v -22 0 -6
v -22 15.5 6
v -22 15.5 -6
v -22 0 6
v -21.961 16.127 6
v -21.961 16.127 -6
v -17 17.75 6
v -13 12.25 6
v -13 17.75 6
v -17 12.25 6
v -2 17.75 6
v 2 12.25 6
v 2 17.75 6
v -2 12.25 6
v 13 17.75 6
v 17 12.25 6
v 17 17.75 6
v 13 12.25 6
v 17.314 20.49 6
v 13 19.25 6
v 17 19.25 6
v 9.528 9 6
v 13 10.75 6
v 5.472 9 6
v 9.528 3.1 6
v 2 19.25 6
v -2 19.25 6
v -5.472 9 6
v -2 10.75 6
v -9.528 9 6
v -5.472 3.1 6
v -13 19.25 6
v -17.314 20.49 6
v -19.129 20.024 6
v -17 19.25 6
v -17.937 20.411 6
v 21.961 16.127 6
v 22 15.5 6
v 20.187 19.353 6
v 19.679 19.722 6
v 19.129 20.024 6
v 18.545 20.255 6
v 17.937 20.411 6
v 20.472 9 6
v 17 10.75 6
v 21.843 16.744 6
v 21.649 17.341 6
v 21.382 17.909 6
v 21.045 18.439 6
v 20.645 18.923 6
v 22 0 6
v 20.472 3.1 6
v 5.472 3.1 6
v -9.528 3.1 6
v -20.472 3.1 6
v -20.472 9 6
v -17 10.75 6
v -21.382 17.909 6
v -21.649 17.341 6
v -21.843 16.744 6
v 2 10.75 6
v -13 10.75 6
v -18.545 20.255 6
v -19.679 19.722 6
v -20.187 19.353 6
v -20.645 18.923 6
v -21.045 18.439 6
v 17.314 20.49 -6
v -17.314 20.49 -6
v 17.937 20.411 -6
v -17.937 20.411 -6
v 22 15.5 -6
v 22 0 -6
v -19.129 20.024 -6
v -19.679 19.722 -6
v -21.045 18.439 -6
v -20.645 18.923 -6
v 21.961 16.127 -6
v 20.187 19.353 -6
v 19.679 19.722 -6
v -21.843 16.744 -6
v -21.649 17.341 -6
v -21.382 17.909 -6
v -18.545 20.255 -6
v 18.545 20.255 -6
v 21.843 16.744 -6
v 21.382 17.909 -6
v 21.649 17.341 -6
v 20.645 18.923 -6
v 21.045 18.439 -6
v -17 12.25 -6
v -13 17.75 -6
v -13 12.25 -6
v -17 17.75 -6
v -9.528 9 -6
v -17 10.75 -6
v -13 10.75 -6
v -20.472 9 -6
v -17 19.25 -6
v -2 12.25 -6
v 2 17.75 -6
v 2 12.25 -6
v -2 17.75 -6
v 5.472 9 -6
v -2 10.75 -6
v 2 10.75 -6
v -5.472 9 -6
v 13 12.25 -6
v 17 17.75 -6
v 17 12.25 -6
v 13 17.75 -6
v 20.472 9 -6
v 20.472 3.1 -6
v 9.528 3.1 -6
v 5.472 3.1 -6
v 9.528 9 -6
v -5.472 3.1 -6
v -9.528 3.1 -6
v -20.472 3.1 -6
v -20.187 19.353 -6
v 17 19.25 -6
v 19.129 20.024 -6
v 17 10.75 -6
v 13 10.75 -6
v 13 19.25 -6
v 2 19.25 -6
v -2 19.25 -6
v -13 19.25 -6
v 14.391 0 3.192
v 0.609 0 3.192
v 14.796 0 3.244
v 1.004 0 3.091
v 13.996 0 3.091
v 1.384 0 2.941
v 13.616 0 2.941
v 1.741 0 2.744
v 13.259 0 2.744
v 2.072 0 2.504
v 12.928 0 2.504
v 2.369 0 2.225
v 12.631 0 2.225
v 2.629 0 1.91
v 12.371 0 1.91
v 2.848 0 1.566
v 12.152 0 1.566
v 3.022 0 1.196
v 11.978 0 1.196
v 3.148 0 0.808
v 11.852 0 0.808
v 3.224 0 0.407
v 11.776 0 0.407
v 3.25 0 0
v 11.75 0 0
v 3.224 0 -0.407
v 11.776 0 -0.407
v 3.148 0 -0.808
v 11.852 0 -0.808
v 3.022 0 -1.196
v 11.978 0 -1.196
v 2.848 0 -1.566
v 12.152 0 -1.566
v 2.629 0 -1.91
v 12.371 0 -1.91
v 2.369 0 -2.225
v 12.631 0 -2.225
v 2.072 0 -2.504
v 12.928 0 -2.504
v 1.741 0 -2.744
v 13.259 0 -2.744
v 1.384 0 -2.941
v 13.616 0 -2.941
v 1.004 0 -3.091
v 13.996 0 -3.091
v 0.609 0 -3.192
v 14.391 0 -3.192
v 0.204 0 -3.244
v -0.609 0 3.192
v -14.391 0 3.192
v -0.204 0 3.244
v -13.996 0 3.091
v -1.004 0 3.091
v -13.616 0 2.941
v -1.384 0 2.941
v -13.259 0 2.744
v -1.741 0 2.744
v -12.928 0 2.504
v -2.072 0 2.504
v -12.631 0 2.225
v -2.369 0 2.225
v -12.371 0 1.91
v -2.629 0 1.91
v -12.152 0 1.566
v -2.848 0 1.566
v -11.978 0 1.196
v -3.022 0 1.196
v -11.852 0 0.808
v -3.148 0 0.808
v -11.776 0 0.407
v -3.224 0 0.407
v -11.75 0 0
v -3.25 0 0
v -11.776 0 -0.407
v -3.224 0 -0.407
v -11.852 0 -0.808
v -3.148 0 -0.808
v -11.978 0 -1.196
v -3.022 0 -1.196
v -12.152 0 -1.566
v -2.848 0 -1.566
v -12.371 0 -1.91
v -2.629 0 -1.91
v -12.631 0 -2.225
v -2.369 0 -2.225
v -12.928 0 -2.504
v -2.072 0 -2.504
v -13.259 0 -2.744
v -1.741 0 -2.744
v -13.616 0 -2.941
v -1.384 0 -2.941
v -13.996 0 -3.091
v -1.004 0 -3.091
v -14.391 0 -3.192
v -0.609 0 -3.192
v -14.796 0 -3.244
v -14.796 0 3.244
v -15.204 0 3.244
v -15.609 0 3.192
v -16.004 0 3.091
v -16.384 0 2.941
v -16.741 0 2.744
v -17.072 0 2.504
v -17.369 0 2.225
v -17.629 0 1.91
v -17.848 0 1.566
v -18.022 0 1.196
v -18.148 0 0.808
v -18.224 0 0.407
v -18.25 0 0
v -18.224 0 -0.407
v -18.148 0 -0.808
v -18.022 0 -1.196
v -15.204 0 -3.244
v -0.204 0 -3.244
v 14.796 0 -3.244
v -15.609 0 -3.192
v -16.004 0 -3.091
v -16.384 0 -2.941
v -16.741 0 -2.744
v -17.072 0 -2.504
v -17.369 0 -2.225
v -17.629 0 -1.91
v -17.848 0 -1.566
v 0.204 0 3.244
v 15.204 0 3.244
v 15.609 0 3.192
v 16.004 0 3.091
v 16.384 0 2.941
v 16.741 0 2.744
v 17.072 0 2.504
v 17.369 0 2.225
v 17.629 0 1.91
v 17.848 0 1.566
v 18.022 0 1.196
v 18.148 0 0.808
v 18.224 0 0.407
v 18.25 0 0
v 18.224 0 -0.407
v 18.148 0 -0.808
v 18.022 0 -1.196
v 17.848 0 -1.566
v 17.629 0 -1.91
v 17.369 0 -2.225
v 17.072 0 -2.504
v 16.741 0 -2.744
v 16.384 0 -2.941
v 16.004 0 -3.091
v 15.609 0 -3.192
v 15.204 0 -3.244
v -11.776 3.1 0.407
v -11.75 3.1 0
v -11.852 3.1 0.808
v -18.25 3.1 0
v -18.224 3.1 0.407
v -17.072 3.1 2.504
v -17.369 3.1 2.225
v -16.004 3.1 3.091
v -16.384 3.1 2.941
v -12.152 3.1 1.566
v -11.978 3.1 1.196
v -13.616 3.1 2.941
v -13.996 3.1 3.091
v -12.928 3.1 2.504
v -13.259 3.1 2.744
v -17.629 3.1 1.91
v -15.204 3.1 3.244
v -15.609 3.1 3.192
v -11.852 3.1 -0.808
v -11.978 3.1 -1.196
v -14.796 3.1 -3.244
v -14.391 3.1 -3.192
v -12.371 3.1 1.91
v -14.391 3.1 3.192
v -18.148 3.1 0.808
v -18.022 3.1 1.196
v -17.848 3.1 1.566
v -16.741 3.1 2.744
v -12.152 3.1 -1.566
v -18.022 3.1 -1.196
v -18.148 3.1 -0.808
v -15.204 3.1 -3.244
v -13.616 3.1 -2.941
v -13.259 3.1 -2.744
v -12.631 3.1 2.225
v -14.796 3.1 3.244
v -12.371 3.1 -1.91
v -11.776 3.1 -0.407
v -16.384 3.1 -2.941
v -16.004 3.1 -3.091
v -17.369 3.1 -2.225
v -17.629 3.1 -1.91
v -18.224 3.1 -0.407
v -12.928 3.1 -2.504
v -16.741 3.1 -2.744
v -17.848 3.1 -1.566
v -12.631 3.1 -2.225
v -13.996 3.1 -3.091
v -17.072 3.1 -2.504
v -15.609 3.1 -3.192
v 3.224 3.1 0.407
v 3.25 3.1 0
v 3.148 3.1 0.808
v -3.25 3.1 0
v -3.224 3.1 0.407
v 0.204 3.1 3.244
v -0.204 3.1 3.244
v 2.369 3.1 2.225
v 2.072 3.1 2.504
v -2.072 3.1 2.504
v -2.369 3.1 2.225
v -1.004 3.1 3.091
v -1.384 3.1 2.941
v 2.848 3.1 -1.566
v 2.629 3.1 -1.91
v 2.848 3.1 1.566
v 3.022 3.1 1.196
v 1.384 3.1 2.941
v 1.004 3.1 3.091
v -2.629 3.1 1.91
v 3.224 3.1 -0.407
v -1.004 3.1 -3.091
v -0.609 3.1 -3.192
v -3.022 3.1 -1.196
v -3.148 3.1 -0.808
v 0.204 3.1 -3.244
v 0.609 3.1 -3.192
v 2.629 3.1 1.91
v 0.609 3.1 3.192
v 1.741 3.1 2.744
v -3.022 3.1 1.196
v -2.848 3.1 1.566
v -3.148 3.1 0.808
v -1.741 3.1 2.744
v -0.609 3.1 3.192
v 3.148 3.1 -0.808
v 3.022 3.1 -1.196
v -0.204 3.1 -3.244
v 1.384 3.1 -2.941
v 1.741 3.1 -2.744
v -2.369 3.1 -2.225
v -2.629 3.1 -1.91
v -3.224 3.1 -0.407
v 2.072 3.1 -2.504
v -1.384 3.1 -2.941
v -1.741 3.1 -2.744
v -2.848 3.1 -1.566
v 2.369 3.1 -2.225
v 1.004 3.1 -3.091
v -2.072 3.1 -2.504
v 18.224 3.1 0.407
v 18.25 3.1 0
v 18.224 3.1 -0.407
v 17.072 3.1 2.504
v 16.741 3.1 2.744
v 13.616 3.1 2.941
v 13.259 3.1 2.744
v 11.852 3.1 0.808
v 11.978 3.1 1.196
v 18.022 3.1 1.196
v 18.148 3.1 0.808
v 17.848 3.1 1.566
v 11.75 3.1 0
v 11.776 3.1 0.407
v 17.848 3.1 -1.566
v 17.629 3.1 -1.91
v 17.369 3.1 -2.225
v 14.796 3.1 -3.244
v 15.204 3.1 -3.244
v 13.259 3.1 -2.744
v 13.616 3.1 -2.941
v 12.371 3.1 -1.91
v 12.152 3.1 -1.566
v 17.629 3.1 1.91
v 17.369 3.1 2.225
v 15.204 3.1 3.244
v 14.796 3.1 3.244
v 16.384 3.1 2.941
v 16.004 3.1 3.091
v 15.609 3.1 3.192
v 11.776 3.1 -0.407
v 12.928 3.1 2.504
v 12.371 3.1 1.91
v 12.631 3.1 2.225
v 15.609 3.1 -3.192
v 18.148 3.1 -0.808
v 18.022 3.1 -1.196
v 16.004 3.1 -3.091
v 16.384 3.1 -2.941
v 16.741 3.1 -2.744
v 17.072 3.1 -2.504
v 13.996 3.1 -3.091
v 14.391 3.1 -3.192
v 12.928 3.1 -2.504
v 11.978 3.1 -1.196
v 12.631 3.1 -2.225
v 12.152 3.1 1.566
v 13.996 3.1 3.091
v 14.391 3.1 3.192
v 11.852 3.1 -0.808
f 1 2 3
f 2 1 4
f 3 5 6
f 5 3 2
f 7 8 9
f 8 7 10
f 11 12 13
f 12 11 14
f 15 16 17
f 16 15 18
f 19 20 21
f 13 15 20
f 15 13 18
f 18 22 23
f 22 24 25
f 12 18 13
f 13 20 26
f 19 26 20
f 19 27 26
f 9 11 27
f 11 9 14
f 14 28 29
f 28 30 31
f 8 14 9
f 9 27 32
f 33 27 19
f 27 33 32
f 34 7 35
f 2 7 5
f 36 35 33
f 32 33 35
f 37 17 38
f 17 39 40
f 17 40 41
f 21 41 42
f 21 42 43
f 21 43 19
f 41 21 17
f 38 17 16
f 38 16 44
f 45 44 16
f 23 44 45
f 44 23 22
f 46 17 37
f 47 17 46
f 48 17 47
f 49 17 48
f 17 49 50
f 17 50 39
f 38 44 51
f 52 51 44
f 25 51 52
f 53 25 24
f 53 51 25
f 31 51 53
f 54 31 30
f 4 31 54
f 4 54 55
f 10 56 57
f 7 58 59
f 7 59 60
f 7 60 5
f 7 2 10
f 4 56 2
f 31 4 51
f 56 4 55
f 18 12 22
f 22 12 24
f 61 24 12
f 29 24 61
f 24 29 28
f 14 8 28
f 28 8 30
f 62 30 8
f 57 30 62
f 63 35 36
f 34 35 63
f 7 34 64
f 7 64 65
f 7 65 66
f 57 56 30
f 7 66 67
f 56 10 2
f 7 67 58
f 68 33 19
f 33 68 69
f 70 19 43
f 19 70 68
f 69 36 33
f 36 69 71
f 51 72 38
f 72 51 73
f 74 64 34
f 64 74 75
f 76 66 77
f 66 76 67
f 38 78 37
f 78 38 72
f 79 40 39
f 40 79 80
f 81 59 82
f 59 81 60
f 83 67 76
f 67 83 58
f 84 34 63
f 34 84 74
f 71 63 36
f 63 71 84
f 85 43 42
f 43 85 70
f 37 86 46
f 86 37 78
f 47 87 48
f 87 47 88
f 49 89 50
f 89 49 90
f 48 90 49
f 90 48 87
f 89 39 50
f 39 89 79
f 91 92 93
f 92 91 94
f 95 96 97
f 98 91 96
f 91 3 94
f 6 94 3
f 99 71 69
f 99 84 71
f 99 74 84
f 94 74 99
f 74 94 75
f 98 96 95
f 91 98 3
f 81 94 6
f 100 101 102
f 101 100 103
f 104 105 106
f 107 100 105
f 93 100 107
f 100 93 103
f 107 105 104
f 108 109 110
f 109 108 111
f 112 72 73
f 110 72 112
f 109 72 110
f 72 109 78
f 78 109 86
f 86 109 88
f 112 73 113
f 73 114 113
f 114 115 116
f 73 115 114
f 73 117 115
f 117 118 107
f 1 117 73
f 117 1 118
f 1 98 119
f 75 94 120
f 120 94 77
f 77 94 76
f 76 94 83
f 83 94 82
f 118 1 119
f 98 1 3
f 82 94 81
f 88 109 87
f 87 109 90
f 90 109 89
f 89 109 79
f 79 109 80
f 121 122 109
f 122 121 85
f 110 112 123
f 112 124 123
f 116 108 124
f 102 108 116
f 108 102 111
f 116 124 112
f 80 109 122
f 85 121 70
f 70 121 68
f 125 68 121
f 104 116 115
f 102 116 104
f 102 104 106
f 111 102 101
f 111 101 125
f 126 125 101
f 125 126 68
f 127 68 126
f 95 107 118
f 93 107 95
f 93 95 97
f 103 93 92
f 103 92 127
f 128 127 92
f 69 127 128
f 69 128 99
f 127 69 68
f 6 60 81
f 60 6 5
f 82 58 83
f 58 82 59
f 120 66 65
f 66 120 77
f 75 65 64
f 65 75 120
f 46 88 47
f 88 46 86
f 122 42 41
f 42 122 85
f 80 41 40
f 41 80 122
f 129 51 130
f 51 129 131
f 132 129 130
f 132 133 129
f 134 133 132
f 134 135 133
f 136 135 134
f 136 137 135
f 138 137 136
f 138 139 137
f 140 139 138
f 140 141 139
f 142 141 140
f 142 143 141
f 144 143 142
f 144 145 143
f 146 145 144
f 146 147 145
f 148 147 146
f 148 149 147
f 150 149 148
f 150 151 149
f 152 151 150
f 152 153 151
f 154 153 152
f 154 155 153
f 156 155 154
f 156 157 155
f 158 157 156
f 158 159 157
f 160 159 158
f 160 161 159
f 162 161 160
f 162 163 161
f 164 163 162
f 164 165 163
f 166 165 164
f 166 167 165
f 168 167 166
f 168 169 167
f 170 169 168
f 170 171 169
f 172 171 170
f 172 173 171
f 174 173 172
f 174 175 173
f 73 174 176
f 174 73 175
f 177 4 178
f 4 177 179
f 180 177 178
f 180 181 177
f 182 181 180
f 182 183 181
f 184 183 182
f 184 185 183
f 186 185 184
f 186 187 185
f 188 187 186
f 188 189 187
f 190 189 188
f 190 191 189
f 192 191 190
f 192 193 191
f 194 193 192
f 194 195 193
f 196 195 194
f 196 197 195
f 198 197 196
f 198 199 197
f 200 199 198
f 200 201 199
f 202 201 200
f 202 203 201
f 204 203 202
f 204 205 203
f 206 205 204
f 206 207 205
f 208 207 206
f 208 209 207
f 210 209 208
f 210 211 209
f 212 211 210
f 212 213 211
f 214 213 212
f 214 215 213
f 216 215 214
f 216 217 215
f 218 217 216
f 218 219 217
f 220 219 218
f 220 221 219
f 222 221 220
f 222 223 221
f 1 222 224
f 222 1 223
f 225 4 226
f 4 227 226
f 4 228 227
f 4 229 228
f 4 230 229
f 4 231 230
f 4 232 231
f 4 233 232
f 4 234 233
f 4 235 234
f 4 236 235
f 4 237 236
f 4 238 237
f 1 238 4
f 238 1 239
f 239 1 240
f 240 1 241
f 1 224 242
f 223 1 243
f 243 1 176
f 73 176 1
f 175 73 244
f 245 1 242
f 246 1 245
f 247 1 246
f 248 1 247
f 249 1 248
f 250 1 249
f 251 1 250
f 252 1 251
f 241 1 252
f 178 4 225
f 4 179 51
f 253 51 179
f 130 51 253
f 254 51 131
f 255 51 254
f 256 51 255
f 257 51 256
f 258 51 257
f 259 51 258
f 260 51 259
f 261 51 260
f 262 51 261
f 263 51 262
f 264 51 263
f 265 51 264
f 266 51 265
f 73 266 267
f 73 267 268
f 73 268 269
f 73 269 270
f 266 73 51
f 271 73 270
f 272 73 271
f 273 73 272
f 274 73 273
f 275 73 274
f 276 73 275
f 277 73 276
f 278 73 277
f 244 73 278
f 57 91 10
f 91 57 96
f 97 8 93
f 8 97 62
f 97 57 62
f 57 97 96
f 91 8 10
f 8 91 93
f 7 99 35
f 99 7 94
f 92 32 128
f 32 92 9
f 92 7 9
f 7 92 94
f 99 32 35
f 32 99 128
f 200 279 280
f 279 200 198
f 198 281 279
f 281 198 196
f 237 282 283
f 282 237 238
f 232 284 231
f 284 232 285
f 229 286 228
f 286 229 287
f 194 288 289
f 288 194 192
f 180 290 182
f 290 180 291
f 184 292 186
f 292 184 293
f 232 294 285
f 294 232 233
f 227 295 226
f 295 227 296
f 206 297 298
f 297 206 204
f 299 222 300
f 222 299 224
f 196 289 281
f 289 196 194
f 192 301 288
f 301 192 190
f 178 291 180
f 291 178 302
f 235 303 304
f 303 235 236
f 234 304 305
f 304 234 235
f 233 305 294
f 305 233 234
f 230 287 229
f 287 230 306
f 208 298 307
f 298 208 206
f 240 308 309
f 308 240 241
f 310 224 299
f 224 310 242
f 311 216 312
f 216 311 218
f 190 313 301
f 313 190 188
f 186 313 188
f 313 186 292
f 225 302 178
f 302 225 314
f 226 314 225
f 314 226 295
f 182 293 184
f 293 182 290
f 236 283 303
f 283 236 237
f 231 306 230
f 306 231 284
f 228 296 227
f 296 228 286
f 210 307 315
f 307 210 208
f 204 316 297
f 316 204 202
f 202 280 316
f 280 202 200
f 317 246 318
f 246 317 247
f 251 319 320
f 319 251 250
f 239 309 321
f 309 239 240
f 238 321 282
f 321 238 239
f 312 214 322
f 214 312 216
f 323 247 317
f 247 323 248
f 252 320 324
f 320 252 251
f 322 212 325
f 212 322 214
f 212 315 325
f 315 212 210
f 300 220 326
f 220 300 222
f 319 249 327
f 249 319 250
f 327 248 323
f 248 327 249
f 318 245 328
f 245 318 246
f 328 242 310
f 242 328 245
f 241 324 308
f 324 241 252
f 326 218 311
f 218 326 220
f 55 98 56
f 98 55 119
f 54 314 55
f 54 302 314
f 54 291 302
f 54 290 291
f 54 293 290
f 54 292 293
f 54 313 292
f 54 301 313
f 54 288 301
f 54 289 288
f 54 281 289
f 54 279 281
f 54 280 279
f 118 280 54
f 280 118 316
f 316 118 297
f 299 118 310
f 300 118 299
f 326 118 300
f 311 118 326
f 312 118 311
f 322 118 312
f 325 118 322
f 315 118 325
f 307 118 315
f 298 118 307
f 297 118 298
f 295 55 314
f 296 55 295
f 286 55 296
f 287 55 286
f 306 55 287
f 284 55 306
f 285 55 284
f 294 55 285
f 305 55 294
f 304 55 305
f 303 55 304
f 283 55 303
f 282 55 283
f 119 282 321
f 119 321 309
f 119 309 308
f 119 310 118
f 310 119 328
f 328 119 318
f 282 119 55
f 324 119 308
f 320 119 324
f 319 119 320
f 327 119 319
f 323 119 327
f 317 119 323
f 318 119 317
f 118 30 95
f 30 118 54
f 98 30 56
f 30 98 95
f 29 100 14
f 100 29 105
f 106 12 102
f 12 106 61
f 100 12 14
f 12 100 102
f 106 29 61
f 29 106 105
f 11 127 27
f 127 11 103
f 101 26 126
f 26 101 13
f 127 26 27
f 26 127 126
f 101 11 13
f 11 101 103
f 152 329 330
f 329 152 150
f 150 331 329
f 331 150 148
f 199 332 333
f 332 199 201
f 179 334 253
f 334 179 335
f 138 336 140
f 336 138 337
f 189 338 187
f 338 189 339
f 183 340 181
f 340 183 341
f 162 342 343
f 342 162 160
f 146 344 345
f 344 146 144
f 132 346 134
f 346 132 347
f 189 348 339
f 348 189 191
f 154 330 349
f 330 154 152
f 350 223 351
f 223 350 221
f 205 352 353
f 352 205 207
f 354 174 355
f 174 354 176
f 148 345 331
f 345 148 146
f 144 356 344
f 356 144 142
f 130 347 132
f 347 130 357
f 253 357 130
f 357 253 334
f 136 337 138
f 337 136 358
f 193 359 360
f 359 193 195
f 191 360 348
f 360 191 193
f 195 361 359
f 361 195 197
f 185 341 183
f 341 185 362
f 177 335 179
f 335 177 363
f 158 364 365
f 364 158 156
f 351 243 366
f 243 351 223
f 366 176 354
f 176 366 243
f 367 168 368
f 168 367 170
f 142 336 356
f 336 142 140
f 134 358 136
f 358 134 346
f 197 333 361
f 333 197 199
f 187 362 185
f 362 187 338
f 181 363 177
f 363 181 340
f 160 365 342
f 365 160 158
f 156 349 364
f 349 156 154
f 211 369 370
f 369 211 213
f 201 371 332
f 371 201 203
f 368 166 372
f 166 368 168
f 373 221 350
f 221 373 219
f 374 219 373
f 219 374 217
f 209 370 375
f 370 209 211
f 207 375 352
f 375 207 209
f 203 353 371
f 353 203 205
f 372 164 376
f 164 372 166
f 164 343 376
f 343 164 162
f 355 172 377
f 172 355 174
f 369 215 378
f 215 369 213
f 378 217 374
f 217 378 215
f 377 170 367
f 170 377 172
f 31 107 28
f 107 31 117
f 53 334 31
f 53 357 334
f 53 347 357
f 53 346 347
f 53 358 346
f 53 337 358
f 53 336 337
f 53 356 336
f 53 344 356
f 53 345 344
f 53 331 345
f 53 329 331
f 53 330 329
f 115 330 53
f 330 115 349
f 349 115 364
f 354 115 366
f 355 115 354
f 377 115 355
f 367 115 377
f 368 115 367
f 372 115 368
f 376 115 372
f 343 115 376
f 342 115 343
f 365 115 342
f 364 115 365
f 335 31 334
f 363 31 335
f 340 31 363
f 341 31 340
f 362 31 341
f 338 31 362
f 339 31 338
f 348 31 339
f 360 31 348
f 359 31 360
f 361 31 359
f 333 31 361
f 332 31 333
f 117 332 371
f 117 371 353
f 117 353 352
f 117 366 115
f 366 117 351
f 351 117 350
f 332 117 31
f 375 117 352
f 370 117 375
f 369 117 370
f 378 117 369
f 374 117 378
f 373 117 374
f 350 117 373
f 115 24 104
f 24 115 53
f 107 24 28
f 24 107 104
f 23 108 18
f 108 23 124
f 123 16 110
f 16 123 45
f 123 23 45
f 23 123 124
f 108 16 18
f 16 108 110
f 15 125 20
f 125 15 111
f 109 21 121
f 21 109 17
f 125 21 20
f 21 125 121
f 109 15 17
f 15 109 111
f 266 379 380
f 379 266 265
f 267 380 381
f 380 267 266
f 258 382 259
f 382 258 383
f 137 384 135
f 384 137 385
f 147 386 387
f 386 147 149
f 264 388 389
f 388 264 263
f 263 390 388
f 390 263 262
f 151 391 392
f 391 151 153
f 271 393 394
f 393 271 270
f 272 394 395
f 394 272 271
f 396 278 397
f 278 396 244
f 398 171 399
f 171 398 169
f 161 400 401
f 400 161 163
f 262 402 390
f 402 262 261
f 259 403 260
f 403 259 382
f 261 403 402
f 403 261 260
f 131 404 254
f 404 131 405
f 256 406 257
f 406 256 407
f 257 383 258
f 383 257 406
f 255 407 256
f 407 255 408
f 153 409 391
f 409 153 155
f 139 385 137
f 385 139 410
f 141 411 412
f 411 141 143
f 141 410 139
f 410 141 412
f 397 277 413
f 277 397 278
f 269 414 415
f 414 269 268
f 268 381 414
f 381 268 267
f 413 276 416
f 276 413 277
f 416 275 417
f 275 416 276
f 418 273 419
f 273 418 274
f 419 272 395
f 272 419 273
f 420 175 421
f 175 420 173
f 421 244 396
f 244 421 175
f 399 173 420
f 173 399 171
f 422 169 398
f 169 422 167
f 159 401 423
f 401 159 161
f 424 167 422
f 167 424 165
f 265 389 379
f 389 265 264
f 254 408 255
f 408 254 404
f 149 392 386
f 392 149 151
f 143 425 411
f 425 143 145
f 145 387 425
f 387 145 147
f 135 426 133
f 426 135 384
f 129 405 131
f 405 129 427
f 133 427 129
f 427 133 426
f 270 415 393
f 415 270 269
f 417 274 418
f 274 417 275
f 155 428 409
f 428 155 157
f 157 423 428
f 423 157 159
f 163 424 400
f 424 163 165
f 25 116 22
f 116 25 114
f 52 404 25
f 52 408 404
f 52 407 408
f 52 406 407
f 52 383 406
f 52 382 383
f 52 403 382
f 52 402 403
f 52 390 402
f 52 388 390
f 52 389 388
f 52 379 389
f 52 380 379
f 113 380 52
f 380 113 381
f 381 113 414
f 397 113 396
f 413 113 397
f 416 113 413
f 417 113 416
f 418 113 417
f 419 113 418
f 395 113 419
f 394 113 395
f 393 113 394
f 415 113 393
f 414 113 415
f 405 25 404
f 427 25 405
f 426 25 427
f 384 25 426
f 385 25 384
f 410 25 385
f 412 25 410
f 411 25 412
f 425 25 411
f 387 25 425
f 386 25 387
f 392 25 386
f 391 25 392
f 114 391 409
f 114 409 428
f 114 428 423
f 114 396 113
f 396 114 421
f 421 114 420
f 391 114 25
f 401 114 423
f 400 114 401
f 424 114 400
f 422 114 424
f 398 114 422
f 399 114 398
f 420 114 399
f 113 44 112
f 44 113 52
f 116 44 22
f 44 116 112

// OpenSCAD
$fn = 50;


difference() {
	union() {
		translate(v = [0, 13.5000000000, -6.0000000000]) {
			rotate(a = [0, 0, 0]) {
				hull() {
					translate(v = [-17.0000000000, 2.0000000000, 0]) {
						rotate(a = [0, 0, 0]) {
							translate(v = [0, 0, 0]) {
								rotate(a = [0, 0, 0]) {
									cylinder(h = 12, r = 5);
								}
							}
						}
					}
					translate(v = [17.0000000000, 2.0000000000, 0]) {
						rotate(a = [0, 0, 0]) {
							translate(v = [0, 0, 0]) {
								rotate(a = [0, 0, 0]) {
									cylinder(h = 12, r = 5);
								}
							}
						}
					}
					translate(v = [-17.0000000000, -2.0000000000, 0]) {
						rotate(a = [0, 0, 0]) {
							translate(v = [0, 0, 0]) {
								rotate(a = [0, 0, 0]) {
									cylinder(h = 12, r = 5);
								}
							}
						}
					}
					translate(v = [17.0000000000, -2.0000000000, 0]) {
						rotate(a = [0, 0, 0]) {
							translate(v = [0, 0, 0]) {
								rotate(a = [0, 0, 0]) {
									cylinder(h = 12, r = 5);
								}
							}
						}
					}
				}
			}
		}
		translate(v = [-22.0000000000, 0, -6.0000000000]) {
			rotate(a = [0, 0, 0]) {
				cube(size = [44, 13.5000000000, 12]);
			}
		}
	}
	union() {
		translate(v = [-17.0000000000, 10.7500000000, -50]) {
			rotate(a = [0, 0, 0]) {
				cube(size = [4, 1.5000000000, 100]);
			}
		}
		translate(v = [-17.0000000000, 17.7500000000, -50]) {
			rotate(a = [0, 0, 0]) {
				cube(size = [4, 1.5000000000, 100]);
			}
		}
		translate(v = [-15.0000000000, 8, 0]) {
			rotate(a = [90, 0, 0]) {
				cylinder(h = 8, r = 3.2500000000);
			}
		}
		translate(v = [-20.4716204506, 9, -25]) {
			rotate(a = [90, 0, 0]) {
				cube(size = [10.9432409012, 100, 5.9000000000]);
			}
		}
		translate(v = [-2.0000000000, 10.7500000000, -50]) {
			rotate(a = [0, 0, 0]) {
				cube(size = [4, 1.5000000000, 100]);
			}
		}
		translate(v = [-2.0000000000, 17.7500000000, -50]) {
			rotate(a = [0, 0, 0]) {
				cube(size = [4, 1.5000000000, 100]);
			}
		}
		translate(v = [0.0000000000, 8, 0]) {
			rotate(a = [90, 0, 0]) {
				cylinder(h = 8, r = 3.2500000000);
			}
		}
		translate(v = [-5.4716204506, 9, -25]) {
			rotate(a = [90, 0, 0]) {
				cube(size = [10.9432409012, 100, 5.9000000000]);
			}
		}
		translate(v = [13.0000000000, 10.7500000000, -50]) {
			rotate(a = [0, 0, 0]) {
				cube(size = [4, 1.5000000000, 100]);
			}
		}
		translate(v = [13.0000000000, 17.7500000000, -50]) {
			rotate(a = [0, 0, 0]) {
				cube(size = [4, 1.5000000000, 100]);
			}
		}
		translate(v = [15.0000000000, 8, 0]) {
			rotate(a = [90, 0, 0]) {
				cylinder(h = 8, r = 3.2500000000);
			}
		}
		translate(v = [9.5283795494, 9, -25]) {
			rotate(a = [90, 0, 0]) {
				cube(size = [10.9432409012, 100, 5.9000000000]);
			}
		}
	}
}
